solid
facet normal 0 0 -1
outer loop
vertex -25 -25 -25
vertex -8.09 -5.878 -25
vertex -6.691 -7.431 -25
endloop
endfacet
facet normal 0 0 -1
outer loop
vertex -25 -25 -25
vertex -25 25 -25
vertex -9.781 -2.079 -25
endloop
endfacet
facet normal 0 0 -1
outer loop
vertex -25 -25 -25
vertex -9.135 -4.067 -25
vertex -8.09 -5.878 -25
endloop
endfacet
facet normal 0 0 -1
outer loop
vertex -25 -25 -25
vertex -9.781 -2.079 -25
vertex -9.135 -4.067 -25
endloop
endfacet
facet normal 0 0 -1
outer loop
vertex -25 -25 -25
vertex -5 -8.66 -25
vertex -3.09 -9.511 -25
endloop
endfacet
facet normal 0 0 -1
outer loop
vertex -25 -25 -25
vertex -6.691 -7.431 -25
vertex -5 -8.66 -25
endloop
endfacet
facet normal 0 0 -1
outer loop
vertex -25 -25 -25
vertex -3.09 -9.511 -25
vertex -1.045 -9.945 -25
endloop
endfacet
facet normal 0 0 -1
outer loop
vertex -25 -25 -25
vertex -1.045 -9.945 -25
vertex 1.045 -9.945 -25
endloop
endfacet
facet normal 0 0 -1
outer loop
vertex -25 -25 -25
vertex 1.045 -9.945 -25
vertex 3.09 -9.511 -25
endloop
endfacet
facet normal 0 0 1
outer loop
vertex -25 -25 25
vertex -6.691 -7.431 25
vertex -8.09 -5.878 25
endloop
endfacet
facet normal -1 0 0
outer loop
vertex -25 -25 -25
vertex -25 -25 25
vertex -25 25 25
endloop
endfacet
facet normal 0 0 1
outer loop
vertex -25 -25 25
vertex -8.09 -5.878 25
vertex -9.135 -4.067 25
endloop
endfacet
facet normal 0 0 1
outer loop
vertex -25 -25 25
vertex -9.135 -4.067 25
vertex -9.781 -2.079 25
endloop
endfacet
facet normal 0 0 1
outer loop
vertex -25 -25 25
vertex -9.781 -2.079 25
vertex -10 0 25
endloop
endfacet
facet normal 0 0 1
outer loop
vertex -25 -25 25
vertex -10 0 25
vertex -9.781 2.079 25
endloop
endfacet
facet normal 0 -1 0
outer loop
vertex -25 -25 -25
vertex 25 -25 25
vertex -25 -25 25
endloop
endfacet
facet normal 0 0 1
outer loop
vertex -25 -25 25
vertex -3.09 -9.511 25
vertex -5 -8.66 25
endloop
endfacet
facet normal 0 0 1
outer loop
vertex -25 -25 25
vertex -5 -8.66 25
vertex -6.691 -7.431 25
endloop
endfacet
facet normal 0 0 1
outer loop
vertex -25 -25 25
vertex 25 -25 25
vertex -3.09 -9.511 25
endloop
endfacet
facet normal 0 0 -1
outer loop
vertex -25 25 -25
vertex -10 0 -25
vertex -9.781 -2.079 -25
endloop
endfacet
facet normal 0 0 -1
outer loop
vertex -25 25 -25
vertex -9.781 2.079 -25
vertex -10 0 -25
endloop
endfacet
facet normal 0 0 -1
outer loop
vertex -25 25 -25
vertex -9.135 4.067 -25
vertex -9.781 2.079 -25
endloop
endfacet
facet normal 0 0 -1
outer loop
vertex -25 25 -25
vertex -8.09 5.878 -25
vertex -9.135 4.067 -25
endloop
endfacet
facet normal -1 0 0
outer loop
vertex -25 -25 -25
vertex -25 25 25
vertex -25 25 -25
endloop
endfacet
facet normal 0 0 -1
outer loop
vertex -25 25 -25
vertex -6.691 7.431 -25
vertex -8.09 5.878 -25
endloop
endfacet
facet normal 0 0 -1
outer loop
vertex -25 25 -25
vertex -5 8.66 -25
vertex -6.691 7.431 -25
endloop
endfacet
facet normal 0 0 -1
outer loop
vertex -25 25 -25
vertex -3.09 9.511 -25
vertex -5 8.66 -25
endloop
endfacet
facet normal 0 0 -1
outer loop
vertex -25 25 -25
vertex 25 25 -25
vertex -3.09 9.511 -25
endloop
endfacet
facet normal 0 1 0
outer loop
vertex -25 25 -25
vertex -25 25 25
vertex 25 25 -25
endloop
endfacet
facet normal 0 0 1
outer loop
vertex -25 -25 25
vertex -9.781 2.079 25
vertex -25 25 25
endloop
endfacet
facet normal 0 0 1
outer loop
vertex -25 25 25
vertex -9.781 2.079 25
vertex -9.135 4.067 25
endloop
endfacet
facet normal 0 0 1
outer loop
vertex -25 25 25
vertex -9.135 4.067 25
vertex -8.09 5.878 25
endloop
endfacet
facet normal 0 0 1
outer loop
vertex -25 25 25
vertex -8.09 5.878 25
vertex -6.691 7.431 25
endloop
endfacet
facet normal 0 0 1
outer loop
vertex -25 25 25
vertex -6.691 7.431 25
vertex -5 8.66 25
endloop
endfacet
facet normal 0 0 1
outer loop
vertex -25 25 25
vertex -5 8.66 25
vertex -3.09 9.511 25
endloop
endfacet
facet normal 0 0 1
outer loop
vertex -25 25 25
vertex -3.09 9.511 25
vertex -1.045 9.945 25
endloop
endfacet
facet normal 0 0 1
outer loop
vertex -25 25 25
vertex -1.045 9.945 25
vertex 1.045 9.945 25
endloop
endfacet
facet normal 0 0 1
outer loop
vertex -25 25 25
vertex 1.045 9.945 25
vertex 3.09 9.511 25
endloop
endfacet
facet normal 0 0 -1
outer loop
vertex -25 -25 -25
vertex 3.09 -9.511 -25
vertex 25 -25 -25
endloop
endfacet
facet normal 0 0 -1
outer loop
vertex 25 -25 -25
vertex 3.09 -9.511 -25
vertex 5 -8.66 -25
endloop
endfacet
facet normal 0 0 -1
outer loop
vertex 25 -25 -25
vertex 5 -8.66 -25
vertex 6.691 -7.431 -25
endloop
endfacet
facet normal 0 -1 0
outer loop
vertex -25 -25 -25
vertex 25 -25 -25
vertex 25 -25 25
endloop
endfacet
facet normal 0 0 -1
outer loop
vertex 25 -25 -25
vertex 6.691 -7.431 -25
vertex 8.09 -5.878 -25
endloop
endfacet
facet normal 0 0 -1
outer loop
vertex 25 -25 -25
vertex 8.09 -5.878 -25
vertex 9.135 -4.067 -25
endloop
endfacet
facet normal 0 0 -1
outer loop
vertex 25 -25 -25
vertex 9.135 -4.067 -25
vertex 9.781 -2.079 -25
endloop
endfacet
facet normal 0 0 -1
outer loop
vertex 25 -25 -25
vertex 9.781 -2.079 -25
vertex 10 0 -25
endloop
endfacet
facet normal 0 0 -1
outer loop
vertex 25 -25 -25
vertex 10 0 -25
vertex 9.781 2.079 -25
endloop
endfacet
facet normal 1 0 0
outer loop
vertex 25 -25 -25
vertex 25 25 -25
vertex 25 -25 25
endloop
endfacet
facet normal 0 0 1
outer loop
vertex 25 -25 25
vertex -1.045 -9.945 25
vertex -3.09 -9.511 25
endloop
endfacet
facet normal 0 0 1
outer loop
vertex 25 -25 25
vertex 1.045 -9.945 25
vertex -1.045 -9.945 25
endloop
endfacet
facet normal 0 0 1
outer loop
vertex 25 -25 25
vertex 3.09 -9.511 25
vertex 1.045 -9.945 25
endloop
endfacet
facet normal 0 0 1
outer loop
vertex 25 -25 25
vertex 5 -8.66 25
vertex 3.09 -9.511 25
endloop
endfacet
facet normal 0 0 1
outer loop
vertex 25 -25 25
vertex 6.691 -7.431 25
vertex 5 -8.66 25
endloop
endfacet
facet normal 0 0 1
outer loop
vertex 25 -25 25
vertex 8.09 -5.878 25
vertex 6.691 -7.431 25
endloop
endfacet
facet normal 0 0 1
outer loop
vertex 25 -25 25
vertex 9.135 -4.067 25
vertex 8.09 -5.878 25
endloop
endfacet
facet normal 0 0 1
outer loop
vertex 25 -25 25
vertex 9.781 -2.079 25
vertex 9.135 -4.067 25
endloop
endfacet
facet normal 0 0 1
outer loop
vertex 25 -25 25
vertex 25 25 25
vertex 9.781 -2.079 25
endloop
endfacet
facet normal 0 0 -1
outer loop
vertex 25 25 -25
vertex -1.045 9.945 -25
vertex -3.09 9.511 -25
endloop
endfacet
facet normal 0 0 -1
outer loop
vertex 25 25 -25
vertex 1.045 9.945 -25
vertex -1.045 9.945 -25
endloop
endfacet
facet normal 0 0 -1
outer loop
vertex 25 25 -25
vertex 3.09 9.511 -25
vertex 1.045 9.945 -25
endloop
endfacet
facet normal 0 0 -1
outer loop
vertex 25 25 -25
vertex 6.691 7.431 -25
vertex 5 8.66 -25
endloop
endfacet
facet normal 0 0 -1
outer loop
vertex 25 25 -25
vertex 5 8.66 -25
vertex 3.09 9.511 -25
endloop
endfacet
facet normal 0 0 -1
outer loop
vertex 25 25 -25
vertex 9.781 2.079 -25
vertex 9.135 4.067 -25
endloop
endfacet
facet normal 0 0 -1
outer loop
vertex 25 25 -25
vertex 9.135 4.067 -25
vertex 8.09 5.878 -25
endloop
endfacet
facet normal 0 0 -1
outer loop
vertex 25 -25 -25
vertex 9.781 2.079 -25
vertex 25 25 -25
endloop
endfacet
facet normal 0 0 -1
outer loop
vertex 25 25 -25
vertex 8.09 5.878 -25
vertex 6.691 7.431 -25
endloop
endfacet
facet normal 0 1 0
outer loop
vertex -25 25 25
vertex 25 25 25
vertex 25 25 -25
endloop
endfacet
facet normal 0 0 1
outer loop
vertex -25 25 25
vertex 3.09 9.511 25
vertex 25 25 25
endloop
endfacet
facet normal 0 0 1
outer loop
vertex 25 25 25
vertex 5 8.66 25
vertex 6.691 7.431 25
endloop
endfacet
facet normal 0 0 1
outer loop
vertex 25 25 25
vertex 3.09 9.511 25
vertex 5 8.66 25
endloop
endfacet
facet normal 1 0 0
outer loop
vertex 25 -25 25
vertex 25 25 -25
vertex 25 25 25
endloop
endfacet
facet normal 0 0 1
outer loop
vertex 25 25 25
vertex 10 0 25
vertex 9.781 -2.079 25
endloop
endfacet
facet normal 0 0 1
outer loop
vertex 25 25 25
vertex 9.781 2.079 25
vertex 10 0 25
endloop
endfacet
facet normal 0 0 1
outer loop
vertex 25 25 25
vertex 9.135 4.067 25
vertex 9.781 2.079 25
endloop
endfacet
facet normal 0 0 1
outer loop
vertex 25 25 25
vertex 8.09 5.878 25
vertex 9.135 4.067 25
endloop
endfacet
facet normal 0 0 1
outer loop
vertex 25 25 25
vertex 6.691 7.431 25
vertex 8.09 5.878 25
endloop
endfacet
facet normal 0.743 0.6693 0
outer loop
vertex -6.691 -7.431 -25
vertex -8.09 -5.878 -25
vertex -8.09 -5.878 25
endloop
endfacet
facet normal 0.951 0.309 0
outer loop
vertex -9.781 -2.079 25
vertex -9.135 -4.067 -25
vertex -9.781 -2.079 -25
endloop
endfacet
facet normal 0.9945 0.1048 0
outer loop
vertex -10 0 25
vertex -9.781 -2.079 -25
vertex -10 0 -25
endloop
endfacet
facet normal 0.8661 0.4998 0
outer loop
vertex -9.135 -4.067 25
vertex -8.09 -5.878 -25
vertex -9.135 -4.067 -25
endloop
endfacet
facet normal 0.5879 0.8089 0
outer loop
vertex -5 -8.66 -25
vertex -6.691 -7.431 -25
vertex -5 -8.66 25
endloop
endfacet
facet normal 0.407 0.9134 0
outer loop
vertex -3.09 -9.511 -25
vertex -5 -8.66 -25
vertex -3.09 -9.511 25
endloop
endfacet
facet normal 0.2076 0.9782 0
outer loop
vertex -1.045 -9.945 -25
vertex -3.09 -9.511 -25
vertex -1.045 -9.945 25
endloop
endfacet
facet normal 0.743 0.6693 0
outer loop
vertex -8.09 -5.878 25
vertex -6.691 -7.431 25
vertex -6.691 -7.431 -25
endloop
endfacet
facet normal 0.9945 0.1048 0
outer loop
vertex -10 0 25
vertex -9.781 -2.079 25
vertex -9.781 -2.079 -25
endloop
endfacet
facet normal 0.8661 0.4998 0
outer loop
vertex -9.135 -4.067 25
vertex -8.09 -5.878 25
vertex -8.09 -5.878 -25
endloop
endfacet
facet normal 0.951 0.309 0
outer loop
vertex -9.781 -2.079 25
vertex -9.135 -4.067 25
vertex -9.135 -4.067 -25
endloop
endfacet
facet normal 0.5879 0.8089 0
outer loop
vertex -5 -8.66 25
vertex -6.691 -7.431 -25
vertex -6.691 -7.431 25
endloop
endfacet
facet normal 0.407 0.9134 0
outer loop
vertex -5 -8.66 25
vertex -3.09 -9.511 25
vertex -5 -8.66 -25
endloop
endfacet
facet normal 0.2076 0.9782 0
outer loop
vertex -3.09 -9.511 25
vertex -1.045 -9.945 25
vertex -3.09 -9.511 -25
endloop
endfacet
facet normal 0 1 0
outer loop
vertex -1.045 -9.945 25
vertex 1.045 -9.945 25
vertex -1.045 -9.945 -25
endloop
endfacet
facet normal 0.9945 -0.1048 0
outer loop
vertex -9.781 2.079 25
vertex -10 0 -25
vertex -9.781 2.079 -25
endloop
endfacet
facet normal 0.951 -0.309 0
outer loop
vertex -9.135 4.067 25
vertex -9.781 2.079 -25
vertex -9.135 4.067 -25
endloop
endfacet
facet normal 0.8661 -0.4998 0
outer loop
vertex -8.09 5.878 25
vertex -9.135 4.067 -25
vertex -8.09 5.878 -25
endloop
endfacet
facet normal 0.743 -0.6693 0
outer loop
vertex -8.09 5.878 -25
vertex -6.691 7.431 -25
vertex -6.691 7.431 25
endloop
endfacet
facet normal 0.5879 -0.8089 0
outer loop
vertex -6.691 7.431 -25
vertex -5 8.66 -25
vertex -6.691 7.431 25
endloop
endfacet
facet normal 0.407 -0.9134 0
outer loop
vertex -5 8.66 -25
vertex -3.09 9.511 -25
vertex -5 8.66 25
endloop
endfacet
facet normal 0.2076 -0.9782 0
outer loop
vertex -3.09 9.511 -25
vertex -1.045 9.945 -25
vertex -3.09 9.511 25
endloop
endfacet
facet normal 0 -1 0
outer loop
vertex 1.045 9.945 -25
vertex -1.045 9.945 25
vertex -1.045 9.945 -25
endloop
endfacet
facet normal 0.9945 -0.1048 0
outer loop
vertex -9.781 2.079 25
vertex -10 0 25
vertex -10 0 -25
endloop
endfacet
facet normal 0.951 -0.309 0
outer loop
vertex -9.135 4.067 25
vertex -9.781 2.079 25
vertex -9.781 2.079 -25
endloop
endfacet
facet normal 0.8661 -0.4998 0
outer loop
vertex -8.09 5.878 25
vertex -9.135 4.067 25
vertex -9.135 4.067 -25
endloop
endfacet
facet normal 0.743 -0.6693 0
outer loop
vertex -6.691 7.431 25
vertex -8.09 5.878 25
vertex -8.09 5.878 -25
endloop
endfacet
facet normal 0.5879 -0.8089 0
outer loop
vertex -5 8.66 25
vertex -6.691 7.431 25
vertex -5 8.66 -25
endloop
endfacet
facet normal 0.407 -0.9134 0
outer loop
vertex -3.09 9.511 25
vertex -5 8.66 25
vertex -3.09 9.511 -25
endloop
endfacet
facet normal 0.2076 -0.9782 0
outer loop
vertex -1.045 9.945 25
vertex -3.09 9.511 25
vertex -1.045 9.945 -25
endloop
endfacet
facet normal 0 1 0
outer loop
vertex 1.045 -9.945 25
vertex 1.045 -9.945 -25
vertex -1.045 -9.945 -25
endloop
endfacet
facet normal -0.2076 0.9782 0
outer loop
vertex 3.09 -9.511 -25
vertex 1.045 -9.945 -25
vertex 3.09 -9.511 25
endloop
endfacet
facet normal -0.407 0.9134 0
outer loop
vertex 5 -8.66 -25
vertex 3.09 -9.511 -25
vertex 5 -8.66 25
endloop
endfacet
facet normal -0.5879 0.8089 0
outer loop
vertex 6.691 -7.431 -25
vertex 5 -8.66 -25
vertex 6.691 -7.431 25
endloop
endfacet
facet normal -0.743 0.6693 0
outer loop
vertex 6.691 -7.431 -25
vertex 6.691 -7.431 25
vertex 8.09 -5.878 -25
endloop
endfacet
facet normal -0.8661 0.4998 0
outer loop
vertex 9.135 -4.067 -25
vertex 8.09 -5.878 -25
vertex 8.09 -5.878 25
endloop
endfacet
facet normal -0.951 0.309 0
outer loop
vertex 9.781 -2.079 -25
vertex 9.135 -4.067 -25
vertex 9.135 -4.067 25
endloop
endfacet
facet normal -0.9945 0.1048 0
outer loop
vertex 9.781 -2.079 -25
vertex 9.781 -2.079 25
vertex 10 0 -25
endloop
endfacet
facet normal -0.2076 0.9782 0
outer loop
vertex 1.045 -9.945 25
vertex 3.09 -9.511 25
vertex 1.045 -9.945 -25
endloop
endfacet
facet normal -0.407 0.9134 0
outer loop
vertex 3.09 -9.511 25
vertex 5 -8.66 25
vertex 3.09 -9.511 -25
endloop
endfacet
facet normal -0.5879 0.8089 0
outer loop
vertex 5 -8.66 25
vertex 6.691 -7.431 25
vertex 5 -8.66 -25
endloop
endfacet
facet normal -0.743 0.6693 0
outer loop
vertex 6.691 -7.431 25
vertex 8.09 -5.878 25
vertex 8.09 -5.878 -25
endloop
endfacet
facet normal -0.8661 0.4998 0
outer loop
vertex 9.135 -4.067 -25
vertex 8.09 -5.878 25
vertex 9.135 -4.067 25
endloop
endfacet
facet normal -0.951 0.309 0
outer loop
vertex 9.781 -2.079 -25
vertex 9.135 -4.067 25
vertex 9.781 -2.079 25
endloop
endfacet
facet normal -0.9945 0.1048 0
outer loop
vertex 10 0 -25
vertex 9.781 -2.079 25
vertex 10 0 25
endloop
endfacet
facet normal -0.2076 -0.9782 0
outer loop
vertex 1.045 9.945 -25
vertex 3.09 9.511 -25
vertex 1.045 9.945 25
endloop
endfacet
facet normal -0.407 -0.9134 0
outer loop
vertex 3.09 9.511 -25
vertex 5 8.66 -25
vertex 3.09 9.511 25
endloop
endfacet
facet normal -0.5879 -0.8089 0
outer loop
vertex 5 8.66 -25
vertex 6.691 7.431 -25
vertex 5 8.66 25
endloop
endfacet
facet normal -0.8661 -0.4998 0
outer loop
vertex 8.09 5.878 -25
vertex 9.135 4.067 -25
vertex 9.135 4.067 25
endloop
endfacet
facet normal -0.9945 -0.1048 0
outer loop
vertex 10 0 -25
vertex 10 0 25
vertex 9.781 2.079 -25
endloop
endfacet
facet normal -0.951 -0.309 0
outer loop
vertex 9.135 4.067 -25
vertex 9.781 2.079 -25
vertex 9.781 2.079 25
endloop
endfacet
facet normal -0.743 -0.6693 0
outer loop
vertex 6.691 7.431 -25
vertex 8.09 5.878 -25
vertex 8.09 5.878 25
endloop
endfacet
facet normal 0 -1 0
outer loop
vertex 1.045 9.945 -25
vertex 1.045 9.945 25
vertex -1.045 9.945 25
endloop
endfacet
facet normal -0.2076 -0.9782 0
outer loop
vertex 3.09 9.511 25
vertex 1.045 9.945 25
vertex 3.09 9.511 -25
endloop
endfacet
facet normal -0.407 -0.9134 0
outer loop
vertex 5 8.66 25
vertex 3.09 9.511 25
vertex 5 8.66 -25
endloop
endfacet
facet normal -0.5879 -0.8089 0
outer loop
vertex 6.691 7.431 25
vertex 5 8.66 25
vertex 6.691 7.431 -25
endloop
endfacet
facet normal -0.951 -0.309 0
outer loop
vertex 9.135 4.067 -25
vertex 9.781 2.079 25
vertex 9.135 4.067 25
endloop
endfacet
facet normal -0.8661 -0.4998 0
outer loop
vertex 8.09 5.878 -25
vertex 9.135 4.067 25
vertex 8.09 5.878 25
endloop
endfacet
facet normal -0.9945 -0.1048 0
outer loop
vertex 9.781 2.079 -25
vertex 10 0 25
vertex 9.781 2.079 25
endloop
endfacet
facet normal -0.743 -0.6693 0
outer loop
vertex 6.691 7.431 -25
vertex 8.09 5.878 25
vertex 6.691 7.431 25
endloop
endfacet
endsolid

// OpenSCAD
difference() {
    cube([50, 50, 50], center = true);
    cylinder(h = 50, d = 20, center = true);
}
